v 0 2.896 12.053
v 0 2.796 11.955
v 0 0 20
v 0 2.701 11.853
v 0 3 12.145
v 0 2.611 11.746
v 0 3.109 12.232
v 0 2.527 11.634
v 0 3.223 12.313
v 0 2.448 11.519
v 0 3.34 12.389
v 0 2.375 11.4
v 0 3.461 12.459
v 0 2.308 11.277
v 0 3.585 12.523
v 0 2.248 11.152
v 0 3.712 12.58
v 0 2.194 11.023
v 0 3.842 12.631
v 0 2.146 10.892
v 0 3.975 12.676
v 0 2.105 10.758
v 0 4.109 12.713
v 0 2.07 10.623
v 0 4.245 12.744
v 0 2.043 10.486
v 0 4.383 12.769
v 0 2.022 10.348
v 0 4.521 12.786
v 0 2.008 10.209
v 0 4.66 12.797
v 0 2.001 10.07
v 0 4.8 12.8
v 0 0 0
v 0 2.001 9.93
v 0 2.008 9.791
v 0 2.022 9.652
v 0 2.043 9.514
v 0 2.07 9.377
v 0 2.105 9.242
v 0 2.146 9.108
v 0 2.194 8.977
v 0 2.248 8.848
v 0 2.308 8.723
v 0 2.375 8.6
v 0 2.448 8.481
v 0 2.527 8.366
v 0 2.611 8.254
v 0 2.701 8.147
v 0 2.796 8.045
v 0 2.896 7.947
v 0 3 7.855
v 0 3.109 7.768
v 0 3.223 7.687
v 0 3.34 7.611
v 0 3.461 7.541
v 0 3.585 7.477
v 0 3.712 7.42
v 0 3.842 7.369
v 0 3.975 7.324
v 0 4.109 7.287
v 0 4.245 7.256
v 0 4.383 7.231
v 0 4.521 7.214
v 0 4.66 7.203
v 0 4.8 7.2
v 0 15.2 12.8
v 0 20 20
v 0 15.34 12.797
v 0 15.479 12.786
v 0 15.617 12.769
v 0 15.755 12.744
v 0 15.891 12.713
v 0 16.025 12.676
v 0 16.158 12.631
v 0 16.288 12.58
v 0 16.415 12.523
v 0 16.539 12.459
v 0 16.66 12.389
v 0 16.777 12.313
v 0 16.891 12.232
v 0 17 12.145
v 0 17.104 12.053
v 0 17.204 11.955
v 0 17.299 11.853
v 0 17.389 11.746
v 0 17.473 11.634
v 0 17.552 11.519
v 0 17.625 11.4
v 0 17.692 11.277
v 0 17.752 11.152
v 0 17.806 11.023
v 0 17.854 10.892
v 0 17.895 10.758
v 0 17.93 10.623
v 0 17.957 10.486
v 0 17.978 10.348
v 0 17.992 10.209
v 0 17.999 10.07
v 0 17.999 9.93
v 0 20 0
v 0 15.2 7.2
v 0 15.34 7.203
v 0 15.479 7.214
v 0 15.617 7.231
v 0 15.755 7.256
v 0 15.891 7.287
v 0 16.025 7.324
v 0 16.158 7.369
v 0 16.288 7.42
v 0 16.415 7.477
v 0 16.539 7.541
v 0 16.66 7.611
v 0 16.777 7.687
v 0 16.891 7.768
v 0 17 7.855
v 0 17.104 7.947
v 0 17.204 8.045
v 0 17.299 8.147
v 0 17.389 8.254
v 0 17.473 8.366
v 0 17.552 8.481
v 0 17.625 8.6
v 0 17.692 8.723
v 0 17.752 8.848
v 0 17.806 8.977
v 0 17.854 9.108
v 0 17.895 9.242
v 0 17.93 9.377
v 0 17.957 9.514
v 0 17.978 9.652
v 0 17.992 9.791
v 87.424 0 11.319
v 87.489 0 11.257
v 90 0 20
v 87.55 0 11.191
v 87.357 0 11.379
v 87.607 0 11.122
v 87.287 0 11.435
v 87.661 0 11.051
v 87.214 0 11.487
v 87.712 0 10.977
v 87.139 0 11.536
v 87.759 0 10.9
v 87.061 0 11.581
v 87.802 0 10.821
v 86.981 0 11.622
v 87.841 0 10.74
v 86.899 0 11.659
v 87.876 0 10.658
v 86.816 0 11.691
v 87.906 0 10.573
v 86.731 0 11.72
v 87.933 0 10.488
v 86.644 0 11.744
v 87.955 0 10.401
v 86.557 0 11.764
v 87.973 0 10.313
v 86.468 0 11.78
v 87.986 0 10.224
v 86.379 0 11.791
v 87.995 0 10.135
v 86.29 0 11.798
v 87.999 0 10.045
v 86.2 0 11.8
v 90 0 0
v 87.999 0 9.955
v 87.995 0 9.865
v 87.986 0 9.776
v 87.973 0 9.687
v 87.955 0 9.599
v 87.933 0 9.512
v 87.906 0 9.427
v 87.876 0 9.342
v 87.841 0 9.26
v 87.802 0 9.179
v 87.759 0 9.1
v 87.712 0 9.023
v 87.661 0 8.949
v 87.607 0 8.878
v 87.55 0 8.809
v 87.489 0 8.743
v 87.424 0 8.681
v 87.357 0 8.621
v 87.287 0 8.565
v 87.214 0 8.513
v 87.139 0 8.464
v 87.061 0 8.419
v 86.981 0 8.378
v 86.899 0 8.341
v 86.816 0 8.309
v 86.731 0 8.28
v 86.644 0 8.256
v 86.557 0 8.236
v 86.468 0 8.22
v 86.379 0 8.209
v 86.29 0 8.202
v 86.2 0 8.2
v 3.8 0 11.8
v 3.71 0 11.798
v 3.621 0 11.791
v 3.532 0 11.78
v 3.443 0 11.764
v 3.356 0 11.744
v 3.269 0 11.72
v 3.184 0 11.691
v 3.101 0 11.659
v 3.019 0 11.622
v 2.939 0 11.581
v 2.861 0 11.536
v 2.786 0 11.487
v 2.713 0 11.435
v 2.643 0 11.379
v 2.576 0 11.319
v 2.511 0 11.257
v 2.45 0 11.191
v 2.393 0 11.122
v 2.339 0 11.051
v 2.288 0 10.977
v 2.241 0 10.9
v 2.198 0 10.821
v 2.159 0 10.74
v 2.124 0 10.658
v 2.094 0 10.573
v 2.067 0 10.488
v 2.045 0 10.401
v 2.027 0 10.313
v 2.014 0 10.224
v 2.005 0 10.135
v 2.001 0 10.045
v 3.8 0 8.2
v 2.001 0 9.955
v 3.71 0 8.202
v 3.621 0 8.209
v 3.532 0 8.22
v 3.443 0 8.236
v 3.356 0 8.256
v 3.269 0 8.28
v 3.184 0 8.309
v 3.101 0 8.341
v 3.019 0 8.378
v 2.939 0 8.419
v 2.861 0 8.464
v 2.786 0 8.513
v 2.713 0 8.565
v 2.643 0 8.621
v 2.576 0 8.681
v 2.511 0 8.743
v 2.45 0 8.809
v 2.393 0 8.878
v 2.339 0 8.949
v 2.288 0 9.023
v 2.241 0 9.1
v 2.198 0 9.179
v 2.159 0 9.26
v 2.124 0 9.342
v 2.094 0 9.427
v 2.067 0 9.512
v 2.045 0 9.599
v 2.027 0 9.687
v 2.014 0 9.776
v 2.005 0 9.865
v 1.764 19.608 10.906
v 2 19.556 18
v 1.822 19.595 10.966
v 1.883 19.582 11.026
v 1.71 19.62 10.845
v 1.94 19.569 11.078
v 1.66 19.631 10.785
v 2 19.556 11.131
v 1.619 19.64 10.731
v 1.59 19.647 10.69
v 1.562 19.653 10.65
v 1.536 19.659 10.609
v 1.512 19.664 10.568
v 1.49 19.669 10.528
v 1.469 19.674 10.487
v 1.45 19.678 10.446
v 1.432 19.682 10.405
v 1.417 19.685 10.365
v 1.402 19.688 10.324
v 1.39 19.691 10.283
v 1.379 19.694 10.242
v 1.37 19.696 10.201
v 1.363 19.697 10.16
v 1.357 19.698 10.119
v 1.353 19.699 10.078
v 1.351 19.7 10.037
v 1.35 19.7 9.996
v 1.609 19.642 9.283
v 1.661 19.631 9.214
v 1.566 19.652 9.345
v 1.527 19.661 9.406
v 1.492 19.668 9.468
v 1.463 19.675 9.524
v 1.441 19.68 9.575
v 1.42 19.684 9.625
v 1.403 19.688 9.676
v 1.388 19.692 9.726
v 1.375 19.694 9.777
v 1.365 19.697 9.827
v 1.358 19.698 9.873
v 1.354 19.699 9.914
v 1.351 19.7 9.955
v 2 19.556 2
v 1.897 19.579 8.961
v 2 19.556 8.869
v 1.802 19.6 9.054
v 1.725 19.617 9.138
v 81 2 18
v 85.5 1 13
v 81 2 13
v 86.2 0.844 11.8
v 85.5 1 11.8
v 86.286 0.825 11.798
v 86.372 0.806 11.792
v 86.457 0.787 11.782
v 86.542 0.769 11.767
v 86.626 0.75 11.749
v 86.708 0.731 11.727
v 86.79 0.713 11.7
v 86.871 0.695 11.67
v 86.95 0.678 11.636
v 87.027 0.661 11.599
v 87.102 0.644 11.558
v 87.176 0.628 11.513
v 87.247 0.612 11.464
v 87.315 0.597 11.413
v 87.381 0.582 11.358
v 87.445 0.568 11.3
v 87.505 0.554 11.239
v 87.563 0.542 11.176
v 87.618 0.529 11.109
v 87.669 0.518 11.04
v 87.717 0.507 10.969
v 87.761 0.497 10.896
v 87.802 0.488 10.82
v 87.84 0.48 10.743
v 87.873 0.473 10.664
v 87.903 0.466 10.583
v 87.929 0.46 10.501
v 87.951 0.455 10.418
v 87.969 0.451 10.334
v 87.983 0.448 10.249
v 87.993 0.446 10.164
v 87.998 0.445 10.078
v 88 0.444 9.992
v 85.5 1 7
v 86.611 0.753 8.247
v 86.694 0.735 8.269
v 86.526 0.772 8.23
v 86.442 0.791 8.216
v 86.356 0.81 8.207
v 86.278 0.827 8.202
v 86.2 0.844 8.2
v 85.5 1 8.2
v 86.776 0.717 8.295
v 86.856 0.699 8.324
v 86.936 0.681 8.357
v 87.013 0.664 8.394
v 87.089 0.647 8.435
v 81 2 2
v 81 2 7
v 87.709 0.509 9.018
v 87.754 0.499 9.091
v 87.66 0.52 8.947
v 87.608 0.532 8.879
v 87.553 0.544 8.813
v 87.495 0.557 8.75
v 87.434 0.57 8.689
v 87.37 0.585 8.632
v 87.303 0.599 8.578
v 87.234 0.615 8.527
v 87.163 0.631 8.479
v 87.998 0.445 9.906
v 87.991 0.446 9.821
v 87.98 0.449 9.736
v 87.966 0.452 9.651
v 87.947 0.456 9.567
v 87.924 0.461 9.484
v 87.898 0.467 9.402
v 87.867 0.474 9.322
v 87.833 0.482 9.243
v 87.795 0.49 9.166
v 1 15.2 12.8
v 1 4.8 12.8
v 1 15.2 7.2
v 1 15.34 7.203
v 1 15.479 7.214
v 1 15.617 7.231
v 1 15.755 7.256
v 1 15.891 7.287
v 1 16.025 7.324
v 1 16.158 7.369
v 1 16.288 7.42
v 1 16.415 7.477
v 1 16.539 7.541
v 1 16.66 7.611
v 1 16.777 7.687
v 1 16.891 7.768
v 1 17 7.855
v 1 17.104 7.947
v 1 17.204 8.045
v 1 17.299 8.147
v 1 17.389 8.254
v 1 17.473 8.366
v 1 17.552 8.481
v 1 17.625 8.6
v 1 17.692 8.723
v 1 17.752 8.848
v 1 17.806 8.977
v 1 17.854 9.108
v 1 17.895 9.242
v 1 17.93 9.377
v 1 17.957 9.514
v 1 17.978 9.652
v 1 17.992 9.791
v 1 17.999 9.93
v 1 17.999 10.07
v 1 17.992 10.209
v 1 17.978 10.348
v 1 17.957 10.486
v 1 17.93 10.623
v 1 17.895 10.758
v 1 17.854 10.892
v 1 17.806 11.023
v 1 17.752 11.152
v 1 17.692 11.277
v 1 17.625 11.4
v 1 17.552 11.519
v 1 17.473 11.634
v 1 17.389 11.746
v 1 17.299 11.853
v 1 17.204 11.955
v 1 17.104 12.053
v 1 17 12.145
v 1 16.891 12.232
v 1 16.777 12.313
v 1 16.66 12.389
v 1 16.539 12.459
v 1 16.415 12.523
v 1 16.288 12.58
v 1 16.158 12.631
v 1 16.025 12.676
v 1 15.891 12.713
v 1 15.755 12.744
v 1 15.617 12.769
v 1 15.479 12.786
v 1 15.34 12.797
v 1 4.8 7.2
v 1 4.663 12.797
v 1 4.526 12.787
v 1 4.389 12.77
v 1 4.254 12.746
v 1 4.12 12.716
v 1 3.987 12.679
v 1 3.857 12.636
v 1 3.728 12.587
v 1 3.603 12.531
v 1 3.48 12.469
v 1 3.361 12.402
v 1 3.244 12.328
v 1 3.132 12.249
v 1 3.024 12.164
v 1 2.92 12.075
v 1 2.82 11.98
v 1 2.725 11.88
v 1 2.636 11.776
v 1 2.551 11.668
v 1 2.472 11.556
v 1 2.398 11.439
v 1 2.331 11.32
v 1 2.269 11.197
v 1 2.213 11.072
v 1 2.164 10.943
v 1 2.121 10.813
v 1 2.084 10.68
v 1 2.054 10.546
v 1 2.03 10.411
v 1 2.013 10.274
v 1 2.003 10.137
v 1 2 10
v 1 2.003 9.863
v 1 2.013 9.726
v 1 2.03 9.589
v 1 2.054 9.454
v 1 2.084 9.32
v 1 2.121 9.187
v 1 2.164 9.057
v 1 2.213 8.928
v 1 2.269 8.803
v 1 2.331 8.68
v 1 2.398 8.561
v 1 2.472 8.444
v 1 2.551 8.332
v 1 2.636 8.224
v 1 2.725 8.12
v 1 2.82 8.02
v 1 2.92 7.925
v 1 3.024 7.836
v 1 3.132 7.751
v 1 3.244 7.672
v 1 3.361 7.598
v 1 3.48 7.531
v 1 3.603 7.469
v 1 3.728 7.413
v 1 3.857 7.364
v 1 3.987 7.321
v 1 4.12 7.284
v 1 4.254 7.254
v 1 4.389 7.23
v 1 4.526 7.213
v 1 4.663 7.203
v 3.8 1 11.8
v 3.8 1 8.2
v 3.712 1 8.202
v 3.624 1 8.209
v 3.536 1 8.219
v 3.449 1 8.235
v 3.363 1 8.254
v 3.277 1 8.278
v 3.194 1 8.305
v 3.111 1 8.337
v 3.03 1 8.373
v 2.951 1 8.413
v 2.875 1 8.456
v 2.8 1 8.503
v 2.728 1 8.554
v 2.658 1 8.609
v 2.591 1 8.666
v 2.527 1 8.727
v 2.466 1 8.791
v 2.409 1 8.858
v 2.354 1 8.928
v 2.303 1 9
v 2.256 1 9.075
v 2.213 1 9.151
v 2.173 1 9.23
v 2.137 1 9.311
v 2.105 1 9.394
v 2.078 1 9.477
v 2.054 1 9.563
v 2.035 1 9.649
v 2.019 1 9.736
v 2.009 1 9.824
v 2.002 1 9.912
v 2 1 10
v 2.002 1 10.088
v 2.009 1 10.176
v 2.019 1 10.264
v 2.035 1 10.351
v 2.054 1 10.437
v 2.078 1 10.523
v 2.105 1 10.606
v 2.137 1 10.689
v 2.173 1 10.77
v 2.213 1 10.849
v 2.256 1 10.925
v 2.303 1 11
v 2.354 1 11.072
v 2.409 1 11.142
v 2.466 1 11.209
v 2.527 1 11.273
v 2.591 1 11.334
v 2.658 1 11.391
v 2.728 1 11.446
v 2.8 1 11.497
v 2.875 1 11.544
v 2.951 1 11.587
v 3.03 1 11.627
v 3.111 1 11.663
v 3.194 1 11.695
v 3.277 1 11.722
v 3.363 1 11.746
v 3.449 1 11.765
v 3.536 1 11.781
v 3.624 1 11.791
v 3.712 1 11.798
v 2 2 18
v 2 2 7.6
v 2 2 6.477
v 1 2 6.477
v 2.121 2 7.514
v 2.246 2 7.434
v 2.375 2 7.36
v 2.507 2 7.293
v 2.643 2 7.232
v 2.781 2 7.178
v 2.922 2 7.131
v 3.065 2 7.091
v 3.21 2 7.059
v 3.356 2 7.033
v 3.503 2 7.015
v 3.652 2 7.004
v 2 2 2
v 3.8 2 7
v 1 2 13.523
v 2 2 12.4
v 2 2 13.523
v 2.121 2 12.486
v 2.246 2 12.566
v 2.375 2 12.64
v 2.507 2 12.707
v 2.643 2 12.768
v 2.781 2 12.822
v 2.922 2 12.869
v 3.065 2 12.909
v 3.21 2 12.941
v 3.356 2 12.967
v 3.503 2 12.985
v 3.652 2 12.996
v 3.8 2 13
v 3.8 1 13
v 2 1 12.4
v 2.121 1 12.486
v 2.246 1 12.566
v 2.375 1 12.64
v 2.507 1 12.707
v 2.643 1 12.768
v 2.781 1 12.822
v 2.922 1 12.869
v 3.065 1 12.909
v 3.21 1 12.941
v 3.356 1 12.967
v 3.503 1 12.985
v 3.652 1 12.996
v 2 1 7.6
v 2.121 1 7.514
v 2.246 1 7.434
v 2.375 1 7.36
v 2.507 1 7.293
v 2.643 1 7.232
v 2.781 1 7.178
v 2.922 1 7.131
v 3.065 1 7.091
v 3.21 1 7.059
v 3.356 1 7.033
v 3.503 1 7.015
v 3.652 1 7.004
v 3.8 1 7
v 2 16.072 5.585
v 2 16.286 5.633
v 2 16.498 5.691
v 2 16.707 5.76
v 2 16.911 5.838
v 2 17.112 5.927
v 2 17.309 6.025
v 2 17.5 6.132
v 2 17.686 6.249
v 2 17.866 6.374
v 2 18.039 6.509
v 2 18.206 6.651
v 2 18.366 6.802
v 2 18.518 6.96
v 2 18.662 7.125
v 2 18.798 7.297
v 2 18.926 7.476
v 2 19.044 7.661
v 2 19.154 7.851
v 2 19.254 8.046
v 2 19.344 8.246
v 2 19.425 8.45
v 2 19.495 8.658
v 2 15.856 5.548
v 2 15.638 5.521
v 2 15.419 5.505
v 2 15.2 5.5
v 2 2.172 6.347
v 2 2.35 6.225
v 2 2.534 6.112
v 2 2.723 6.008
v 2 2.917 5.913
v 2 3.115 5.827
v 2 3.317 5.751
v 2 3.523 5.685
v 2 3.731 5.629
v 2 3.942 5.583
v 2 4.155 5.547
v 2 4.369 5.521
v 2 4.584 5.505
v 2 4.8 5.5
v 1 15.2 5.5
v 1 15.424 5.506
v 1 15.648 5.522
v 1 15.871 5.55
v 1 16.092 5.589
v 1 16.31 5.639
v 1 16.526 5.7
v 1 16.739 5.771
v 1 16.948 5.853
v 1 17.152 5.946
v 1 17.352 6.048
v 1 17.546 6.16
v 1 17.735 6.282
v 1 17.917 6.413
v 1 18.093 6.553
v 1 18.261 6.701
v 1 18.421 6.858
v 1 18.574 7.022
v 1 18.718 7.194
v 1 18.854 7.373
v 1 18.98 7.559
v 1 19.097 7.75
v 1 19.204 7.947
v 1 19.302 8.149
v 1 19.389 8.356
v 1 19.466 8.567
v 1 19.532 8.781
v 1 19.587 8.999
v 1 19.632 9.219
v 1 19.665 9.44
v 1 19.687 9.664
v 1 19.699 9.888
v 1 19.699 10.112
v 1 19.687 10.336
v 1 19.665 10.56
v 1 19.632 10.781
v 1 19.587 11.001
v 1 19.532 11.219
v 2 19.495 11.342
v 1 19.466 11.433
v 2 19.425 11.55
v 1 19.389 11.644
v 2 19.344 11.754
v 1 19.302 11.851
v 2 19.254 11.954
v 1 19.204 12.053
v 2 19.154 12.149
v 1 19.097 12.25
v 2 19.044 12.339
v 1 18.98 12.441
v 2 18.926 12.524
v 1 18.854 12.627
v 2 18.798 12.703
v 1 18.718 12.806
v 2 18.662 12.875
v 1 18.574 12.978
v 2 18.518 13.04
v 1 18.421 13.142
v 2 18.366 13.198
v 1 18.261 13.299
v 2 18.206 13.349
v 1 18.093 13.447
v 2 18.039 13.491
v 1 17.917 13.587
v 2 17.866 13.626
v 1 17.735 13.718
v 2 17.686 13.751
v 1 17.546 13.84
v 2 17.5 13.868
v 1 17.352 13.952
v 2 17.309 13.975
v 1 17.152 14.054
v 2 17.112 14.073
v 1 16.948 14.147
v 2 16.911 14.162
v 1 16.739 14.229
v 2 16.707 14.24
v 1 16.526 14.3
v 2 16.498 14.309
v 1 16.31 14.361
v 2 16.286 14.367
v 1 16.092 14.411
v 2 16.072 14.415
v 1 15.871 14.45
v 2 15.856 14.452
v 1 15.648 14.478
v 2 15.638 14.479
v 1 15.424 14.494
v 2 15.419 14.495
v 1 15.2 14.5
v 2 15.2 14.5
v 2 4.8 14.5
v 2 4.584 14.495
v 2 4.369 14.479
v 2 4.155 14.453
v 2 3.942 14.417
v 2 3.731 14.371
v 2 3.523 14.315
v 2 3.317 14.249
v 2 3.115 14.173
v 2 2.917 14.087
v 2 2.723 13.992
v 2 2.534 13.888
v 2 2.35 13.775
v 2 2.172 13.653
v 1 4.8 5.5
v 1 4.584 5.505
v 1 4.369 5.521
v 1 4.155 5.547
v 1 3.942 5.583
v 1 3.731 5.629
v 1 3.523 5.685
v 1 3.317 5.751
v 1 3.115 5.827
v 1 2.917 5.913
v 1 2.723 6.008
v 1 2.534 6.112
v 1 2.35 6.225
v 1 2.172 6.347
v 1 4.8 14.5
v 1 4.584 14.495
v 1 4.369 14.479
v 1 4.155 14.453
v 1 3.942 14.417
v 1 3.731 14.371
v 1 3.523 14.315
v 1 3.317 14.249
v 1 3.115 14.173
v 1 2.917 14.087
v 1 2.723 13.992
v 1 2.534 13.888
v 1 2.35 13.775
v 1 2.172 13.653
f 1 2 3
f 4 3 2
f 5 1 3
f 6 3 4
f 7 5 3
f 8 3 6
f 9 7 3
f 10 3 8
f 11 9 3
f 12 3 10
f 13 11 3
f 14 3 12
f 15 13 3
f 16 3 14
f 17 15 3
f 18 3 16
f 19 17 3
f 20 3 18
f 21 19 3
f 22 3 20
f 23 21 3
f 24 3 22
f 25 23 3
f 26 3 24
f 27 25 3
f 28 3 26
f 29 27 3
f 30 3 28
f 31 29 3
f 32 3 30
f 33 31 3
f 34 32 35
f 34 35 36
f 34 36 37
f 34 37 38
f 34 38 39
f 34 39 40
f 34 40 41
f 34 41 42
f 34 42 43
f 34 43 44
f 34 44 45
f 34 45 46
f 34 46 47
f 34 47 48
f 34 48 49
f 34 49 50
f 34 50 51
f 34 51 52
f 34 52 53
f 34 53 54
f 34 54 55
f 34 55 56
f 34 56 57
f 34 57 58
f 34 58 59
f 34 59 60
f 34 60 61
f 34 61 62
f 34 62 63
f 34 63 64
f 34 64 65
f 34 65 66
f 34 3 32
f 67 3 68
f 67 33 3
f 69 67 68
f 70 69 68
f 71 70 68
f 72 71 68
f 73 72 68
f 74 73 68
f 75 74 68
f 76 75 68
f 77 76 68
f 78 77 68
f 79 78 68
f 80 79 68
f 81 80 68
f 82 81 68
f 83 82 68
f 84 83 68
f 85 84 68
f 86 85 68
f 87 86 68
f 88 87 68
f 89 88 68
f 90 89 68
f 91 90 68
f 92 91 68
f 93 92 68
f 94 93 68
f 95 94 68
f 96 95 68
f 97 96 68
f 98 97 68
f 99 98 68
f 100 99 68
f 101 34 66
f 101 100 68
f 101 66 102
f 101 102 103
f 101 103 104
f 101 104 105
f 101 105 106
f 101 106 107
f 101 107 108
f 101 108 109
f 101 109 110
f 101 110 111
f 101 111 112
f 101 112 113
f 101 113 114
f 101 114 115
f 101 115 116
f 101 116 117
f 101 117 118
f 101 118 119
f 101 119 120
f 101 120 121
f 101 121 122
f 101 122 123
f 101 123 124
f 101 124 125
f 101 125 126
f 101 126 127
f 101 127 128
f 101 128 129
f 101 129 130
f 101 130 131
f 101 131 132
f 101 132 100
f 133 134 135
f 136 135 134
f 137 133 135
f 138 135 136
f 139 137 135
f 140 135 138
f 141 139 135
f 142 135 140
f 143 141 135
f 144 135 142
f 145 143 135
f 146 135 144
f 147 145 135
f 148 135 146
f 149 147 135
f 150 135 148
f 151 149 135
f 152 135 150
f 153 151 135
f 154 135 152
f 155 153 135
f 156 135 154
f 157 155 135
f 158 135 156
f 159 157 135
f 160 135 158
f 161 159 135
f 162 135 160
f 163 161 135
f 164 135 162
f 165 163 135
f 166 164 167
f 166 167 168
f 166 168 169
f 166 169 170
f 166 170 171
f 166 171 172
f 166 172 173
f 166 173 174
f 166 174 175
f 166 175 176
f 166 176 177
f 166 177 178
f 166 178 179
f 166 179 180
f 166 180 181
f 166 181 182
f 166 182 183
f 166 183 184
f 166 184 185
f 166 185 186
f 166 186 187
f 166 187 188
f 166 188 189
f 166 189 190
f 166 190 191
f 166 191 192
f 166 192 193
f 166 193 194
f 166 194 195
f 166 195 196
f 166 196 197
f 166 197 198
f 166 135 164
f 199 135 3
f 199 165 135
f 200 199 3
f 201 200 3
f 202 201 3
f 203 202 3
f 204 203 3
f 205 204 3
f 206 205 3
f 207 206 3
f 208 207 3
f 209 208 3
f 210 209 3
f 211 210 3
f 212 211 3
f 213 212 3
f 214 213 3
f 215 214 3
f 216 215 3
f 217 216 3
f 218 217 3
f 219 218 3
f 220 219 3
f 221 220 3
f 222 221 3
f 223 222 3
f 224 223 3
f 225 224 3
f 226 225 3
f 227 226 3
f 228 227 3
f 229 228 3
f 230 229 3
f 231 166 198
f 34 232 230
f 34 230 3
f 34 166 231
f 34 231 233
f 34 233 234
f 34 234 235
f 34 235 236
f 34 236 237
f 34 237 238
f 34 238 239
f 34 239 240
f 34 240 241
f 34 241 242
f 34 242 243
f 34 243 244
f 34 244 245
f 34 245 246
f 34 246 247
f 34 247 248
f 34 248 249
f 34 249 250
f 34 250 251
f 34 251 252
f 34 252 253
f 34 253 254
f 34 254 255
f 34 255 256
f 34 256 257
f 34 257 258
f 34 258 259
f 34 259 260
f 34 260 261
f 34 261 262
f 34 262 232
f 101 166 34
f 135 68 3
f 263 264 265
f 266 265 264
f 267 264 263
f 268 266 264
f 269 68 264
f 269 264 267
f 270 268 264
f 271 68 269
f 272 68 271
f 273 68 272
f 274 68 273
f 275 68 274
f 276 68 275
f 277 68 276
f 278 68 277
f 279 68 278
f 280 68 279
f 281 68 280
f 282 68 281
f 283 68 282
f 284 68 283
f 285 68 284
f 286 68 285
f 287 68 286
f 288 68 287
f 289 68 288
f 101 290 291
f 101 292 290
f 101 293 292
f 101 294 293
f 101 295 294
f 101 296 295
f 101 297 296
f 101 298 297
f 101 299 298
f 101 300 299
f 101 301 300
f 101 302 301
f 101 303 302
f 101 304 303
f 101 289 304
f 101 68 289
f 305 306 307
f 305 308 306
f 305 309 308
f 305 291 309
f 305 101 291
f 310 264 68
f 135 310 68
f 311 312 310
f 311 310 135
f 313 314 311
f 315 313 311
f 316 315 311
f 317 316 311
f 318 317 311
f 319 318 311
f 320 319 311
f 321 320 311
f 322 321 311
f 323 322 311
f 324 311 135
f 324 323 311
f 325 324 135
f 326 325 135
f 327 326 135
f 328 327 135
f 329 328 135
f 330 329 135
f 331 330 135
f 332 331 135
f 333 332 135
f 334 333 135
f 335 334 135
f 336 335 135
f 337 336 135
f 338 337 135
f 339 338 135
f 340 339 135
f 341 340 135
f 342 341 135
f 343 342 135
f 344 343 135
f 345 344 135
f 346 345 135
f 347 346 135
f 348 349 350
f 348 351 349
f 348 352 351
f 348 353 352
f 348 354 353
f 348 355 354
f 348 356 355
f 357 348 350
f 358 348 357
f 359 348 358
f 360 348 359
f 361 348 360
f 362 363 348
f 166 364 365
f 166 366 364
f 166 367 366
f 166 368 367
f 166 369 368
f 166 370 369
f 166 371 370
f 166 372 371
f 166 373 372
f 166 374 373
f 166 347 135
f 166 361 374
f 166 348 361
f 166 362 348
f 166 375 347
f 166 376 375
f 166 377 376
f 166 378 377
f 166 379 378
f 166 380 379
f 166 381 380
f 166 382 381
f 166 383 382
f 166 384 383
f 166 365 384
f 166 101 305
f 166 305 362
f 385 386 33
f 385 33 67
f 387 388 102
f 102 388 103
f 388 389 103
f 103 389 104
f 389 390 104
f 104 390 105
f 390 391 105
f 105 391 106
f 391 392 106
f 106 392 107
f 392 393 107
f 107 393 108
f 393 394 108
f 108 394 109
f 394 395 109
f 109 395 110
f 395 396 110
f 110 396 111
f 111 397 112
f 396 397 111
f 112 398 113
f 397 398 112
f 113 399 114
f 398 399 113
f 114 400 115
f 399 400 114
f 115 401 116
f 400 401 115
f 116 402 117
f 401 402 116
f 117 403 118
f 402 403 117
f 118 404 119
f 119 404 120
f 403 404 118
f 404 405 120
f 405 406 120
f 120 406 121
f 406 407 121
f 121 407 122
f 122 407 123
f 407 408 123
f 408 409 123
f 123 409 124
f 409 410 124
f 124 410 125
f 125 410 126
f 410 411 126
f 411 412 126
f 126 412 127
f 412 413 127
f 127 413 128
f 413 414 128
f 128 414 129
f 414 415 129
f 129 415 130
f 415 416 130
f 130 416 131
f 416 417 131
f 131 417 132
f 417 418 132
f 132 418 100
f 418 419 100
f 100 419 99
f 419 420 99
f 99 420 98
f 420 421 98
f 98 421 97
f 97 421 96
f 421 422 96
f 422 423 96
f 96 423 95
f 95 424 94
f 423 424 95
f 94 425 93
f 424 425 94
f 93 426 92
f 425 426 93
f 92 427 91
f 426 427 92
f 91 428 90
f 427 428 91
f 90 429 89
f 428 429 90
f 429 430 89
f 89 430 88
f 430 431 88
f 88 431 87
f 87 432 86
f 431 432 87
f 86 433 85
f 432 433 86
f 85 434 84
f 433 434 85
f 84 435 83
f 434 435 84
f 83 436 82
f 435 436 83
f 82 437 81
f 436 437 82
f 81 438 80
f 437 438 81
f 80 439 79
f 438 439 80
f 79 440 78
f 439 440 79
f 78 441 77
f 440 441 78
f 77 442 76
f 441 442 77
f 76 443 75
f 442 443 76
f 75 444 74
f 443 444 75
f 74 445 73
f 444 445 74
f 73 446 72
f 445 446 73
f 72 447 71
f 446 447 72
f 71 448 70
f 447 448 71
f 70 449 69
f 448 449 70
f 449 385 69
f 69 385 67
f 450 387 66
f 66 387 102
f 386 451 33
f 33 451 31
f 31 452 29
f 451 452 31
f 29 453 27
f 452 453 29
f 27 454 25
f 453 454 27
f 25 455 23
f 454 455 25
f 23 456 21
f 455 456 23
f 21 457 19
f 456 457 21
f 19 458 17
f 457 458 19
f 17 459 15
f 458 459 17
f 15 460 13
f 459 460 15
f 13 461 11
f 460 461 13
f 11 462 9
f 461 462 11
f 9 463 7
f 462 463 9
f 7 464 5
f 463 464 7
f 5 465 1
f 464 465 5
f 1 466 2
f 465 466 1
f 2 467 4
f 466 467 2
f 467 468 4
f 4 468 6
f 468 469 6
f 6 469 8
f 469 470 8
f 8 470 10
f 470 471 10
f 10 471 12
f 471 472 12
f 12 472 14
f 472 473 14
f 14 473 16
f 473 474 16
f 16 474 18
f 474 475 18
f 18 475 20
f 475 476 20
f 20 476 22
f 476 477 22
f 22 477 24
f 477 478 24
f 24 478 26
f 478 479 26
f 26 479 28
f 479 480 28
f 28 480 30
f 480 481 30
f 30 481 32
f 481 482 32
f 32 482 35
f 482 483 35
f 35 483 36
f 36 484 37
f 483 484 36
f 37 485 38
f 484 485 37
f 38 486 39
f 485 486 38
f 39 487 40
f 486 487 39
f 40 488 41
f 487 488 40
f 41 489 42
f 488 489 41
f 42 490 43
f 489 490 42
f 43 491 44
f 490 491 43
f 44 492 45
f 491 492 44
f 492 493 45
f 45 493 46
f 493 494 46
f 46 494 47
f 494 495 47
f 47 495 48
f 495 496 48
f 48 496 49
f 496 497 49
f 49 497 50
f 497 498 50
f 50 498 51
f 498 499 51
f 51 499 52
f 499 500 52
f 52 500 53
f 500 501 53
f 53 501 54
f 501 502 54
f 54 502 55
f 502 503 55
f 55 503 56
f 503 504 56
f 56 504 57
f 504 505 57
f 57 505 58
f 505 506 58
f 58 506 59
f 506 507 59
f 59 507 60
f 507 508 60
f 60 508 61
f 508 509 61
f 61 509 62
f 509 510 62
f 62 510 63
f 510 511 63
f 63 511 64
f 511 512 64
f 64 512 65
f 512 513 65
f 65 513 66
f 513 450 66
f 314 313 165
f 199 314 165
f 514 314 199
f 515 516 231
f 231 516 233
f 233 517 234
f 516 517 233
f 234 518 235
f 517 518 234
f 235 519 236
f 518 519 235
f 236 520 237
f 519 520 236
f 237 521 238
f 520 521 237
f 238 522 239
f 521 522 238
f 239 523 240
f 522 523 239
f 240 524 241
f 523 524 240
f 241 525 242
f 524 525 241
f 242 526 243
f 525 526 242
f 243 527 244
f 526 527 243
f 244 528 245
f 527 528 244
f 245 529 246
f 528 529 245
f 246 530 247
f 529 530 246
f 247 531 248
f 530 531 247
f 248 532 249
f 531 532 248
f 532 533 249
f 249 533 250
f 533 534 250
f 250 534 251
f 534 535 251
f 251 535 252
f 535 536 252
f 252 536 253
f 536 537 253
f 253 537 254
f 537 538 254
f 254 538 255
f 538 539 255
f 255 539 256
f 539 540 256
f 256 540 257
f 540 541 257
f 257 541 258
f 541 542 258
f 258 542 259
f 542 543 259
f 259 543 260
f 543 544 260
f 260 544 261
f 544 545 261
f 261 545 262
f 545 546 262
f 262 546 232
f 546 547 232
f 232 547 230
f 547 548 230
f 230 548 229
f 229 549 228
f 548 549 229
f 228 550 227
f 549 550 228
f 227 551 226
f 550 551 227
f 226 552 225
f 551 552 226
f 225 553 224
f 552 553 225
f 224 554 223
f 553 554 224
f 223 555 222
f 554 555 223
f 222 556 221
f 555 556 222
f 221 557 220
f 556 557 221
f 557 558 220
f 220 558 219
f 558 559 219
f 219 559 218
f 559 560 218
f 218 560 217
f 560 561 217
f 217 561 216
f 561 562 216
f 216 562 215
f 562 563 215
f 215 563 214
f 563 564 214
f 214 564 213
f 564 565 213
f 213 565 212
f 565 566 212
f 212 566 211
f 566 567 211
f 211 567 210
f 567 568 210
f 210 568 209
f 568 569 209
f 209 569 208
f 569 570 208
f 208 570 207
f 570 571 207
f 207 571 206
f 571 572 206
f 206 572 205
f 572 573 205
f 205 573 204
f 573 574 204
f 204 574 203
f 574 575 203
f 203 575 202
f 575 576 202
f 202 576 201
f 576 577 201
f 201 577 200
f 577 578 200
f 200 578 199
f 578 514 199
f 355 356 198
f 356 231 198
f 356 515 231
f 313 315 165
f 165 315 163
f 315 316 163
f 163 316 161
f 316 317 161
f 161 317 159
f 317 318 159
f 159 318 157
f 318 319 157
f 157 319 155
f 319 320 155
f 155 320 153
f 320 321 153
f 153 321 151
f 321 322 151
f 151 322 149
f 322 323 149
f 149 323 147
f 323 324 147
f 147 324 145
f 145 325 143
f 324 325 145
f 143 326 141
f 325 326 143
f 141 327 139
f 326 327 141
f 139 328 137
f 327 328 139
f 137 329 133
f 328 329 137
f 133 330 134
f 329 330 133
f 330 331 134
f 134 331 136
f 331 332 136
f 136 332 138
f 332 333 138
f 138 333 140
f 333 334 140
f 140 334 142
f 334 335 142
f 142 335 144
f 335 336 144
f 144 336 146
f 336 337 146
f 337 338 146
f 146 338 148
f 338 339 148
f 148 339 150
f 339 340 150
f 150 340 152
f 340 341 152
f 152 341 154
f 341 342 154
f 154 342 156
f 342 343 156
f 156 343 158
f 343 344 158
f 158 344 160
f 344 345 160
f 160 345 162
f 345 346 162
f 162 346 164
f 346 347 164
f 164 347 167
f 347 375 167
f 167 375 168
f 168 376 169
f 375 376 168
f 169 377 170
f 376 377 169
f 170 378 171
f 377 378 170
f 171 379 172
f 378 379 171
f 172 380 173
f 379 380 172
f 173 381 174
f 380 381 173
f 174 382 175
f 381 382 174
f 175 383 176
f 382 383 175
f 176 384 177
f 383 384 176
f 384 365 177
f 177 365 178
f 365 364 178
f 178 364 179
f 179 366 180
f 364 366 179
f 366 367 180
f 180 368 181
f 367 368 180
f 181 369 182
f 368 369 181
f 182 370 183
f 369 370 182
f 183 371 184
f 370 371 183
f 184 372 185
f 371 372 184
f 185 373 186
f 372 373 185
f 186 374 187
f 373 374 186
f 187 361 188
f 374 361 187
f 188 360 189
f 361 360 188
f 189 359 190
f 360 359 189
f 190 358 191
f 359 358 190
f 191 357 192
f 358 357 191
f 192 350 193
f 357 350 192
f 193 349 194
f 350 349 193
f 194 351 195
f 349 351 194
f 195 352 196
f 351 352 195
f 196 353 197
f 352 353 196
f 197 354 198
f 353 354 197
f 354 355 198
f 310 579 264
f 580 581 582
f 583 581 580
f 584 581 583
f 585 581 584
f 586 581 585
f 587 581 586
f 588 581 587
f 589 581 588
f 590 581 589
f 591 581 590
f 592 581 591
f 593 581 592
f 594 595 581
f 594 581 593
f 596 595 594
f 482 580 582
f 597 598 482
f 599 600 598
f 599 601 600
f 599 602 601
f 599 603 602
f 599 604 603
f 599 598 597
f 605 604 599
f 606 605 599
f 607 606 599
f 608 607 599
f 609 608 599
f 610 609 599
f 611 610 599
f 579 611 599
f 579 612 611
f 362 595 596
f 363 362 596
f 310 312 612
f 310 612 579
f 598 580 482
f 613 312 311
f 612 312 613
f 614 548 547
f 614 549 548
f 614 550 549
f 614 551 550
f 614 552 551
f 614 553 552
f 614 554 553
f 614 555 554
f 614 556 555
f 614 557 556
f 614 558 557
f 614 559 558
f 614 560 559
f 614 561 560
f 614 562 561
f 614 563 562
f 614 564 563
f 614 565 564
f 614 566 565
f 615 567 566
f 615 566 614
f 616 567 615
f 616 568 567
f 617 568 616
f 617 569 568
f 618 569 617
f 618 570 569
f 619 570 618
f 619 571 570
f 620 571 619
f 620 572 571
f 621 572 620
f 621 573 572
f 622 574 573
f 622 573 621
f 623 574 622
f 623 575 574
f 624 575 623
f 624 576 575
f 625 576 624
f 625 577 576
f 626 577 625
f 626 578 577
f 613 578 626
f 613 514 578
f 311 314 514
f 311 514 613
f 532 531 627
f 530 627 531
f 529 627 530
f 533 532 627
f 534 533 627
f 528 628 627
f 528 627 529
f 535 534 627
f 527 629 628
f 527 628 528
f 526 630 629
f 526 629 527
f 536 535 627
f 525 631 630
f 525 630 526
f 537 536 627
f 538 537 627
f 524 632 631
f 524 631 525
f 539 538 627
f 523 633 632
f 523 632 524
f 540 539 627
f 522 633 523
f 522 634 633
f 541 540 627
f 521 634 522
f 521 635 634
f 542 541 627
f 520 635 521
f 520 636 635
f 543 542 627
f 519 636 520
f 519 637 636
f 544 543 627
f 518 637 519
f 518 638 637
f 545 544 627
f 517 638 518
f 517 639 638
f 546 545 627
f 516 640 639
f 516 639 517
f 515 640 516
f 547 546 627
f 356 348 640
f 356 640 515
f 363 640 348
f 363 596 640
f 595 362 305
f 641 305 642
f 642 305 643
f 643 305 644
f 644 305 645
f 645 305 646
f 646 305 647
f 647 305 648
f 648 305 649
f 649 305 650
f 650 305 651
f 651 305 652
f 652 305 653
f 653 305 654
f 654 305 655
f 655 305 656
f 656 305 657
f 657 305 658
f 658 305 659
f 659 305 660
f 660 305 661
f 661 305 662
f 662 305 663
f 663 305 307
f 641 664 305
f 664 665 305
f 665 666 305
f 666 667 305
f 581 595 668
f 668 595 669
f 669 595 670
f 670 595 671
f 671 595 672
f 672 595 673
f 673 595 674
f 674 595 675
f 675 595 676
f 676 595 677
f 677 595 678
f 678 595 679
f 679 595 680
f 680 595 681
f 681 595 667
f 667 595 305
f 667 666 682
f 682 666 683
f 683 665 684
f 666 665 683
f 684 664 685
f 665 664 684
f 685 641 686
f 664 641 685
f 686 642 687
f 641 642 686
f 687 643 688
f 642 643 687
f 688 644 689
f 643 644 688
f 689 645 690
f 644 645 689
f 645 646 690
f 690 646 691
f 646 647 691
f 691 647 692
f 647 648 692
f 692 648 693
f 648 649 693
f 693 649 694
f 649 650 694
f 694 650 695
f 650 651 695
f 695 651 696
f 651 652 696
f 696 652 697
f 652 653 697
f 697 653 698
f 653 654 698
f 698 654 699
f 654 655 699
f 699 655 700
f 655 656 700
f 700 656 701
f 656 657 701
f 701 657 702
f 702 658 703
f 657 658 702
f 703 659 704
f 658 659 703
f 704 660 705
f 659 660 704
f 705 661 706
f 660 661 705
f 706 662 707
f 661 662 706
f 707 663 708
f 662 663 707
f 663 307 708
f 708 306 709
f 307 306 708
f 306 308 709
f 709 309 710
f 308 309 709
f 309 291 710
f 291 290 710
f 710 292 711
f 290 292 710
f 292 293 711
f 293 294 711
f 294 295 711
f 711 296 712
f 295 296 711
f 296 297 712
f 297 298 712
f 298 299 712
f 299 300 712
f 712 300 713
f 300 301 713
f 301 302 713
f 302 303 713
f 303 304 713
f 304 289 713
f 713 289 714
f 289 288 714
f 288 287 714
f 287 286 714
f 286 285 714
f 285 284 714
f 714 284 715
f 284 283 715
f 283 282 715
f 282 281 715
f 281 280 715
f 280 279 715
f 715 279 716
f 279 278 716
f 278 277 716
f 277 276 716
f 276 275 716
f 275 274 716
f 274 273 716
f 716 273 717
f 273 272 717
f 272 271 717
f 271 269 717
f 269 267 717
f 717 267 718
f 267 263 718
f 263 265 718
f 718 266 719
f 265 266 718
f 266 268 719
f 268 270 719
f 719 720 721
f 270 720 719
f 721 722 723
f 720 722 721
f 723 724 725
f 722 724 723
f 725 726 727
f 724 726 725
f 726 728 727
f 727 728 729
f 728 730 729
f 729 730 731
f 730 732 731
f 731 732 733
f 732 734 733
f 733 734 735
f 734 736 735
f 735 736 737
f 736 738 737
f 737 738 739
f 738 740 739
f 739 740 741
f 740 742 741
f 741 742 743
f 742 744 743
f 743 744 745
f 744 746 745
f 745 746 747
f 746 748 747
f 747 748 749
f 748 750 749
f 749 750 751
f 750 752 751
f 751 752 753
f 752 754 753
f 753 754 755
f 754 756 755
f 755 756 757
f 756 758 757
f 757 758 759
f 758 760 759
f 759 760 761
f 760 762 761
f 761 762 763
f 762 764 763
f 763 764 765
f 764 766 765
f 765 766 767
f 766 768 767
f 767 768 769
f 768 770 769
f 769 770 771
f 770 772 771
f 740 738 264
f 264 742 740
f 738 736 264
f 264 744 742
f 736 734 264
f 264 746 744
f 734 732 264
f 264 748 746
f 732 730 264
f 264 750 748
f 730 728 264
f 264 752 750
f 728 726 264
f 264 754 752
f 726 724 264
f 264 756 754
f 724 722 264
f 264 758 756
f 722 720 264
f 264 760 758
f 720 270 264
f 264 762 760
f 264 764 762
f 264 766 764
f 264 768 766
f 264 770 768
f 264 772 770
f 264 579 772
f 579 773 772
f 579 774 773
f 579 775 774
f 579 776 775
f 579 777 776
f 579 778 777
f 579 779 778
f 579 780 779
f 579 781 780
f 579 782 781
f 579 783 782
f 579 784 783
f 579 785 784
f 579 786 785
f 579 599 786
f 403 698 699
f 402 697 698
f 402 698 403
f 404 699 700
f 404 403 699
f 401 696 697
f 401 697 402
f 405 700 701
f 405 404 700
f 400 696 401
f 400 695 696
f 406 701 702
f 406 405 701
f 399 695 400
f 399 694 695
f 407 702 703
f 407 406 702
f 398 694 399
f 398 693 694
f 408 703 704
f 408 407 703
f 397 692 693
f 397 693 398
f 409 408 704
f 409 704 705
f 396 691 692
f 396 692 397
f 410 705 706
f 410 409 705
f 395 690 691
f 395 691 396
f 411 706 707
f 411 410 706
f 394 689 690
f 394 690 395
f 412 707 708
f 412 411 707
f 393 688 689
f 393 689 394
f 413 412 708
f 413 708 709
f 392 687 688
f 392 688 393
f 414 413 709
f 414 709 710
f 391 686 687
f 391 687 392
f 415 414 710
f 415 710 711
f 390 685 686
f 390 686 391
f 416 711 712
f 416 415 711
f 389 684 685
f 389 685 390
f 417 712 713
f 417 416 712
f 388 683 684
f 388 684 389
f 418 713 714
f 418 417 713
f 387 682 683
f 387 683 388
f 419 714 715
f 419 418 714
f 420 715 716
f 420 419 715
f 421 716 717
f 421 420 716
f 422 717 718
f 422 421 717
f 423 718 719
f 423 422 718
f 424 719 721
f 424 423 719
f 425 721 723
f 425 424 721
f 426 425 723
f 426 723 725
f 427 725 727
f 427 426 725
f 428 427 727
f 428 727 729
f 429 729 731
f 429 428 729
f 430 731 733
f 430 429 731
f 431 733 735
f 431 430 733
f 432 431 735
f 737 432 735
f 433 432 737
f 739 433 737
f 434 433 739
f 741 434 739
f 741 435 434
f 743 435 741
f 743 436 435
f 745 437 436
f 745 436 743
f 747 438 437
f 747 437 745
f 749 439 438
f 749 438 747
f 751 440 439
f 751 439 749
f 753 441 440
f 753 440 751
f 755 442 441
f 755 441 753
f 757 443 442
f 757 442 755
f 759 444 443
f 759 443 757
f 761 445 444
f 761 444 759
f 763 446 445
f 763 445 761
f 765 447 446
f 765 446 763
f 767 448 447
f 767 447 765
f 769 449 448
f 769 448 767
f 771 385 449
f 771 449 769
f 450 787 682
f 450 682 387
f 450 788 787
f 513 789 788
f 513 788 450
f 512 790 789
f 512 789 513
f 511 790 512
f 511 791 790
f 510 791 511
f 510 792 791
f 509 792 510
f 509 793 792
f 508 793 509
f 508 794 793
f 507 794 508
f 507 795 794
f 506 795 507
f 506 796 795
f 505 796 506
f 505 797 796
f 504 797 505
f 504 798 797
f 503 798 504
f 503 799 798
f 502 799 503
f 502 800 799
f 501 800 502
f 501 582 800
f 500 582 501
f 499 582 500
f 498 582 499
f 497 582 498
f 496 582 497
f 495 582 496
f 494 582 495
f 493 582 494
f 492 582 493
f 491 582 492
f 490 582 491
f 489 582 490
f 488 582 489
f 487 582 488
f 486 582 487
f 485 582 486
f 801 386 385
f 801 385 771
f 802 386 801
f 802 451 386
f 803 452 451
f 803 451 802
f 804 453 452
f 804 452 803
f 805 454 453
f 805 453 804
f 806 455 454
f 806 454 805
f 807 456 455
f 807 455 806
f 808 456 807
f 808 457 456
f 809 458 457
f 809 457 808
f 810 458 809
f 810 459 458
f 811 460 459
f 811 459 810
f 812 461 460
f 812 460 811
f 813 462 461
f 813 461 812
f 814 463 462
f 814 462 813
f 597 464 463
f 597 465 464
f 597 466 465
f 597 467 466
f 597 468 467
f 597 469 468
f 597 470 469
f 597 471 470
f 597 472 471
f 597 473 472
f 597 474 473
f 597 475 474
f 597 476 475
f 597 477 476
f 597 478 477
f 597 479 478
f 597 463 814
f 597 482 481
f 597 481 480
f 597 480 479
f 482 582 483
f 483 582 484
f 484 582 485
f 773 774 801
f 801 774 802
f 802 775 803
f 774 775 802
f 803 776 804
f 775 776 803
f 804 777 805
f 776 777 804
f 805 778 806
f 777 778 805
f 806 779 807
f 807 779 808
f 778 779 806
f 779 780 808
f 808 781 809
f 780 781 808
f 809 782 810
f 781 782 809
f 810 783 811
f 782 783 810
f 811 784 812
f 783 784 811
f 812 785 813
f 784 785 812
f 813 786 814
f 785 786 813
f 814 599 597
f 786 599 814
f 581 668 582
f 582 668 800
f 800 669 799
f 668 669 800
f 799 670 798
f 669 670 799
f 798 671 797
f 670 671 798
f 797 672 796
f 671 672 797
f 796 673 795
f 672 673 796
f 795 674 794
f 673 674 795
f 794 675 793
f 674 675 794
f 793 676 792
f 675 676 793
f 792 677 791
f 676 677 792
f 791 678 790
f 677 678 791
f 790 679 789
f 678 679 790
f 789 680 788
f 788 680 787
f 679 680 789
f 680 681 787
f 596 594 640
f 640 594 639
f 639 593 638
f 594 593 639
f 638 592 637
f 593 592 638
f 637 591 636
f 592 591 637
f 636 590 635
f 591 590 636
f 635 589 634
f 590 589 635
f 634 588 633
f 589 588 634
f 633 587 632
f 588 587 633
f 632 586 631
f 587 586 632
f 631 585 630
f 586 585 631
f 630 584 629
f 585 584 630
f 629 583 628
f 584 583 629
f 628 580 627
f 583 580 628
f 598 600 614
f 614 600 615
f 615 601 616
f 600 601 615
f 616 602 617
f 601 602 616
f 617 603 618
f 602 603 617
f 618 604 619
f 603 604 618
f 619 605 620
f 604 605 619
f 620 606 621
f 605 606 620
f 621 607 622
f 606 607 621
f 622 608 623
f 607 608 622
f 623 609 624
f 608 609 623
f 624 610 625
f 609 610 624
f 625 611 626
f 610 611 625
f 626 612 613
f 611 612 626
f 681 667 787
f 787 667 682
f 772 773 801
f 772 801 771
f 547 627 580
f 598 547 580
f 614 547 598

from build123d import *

# Parameters (mm, degrees)
PAD_DEPTH            = 20
SKETCH001_W          = 88
SKETCH001_H          = 16
POCKET_DEPTH         = 18.001
POCKET001_DEPTH      = 2.001
POCKET002_DEPTH      = 1
POCKET002_DEPTH_BACK = -5
POCKET003_DEPTH      = 2.001
POCKET004_DEPTH      = 1


with BuildPart() as part:
    # Sketch → Pad (new body)
    with BuildSketch(Plane.XY):
        Polygon((0, 0), (0, 20), (90, 0), align=None)
    extrude(amount=PAD_DEPTH)

    # Sketch001 → Pocket (cut, through all)
    with BuildSketch(Plane.XZ.offset(-2)):
        with Locations((46, 10)):
            Rectangle(SKETCH001_W, SKETCH001_H)
    extrude(amount=-POCKET_DEPTH, mode=Mode.SUBTRACT)

    # Sketch002 (on Face9 of Pocket) → Pocket001 (cut, through all)
    with BuildSketch(Plane.YZ.offset(2)):
        with BuildLine():
            ThreePointArc((4.8, 12.8), (2, 10), (4.8, 7.2))
            Line((4.8, 7.2), (15.2, 7.2))
            ThreePointArc((15.2, 7.2), (18, 10), (15.2, 12.8))
            Line((4.8, 12.8), (15.2, 12.8))
        make_face()
    extrude(amount=-POCKET001_DEPTH, mode=Mode.SUBTRACT)

    # Sketch003 (on Face13 of Pocket001) → Pocket002 (cut, two sides)
    with BuildSketch(Plane.YZ.offset(2)) as pocket002_sk:
        with BuildLine():
            ThreePointArc((15.2, 5.5), (19.7, 10), (15.2, 14.5))
            Line((4.8, 14.5), (15.2, 14.5))
            ThreePointArc((4.8, 14.5), (3.317186, 14.248678), (2, 13.522783))
            Line((2, 13.522783), (2, 6.477217))
            ThreePointArc((2, 6.477217), (3.317186, 5.751322), (4.8, 5.5))
            Line((4.8, 5.5), (15.2, 5.5))
        make_face()
    extrude(amount=-POCKET002_DEPTH, mode=Mode.SUBTRACT)
    extrude(pocket002_sk.sketch, amount=-POCKET002_DEPTH_BACK, mode=Mode.SUBTRACT)

    # Sketch004 (on Face20 of Pocket002) → Pocket003 (cut, through all)
    with BuildSketch(Plane(origin=(0, 2, 0), x_dir=(-1, 0, 0), z_dir=(0, 1, 0))):
        with BuildLine():
            ThreePointArc((-86.2, 11.8), (-88, 10), (-86.2, 8.2))
            Line((-86.2, 8.2), (-3.8, 8.2))
            ThreePointArc((-3.8, 8.2), (-2, 10), (-3.8, 11.8))
            Line((-86.2, 11.8), (-3.8, 11.8))
        make_face()
    extrude(amount=-POCKET003_DEPTH, mode=Mode.SUBTRACT)

    # Sketch005 (on Face15 of Pocket003) → Pocket004 (cut)
    with BuildSketch(Plane(origin=(0, 2, 0), x_dir=(-1, 0, 0), z_dir=(0, 1, 0))):
        with BuildLine():
            ThreePointArc((-86.2, 13), (-89.2, 10), (-86.2, 7))
            Line((-86.2, 7), (-3.8, 7))
            ThreePointArc((-3.8, 7), (-2.851317, 7.15395), (-2, 7.6))
            Line((-2, 12.4), (-2, 7.6))
            ThreePointArc((-2, 12.4), (-2.851317, 12.84605), (-3.8, 13))
            Line((-86.2, 13), (-3.8, 13))
        make_face()
    extrude(amount=-POCKET004_DEPTH, mode=Mode.SUBTRACT)


solid = part.part
